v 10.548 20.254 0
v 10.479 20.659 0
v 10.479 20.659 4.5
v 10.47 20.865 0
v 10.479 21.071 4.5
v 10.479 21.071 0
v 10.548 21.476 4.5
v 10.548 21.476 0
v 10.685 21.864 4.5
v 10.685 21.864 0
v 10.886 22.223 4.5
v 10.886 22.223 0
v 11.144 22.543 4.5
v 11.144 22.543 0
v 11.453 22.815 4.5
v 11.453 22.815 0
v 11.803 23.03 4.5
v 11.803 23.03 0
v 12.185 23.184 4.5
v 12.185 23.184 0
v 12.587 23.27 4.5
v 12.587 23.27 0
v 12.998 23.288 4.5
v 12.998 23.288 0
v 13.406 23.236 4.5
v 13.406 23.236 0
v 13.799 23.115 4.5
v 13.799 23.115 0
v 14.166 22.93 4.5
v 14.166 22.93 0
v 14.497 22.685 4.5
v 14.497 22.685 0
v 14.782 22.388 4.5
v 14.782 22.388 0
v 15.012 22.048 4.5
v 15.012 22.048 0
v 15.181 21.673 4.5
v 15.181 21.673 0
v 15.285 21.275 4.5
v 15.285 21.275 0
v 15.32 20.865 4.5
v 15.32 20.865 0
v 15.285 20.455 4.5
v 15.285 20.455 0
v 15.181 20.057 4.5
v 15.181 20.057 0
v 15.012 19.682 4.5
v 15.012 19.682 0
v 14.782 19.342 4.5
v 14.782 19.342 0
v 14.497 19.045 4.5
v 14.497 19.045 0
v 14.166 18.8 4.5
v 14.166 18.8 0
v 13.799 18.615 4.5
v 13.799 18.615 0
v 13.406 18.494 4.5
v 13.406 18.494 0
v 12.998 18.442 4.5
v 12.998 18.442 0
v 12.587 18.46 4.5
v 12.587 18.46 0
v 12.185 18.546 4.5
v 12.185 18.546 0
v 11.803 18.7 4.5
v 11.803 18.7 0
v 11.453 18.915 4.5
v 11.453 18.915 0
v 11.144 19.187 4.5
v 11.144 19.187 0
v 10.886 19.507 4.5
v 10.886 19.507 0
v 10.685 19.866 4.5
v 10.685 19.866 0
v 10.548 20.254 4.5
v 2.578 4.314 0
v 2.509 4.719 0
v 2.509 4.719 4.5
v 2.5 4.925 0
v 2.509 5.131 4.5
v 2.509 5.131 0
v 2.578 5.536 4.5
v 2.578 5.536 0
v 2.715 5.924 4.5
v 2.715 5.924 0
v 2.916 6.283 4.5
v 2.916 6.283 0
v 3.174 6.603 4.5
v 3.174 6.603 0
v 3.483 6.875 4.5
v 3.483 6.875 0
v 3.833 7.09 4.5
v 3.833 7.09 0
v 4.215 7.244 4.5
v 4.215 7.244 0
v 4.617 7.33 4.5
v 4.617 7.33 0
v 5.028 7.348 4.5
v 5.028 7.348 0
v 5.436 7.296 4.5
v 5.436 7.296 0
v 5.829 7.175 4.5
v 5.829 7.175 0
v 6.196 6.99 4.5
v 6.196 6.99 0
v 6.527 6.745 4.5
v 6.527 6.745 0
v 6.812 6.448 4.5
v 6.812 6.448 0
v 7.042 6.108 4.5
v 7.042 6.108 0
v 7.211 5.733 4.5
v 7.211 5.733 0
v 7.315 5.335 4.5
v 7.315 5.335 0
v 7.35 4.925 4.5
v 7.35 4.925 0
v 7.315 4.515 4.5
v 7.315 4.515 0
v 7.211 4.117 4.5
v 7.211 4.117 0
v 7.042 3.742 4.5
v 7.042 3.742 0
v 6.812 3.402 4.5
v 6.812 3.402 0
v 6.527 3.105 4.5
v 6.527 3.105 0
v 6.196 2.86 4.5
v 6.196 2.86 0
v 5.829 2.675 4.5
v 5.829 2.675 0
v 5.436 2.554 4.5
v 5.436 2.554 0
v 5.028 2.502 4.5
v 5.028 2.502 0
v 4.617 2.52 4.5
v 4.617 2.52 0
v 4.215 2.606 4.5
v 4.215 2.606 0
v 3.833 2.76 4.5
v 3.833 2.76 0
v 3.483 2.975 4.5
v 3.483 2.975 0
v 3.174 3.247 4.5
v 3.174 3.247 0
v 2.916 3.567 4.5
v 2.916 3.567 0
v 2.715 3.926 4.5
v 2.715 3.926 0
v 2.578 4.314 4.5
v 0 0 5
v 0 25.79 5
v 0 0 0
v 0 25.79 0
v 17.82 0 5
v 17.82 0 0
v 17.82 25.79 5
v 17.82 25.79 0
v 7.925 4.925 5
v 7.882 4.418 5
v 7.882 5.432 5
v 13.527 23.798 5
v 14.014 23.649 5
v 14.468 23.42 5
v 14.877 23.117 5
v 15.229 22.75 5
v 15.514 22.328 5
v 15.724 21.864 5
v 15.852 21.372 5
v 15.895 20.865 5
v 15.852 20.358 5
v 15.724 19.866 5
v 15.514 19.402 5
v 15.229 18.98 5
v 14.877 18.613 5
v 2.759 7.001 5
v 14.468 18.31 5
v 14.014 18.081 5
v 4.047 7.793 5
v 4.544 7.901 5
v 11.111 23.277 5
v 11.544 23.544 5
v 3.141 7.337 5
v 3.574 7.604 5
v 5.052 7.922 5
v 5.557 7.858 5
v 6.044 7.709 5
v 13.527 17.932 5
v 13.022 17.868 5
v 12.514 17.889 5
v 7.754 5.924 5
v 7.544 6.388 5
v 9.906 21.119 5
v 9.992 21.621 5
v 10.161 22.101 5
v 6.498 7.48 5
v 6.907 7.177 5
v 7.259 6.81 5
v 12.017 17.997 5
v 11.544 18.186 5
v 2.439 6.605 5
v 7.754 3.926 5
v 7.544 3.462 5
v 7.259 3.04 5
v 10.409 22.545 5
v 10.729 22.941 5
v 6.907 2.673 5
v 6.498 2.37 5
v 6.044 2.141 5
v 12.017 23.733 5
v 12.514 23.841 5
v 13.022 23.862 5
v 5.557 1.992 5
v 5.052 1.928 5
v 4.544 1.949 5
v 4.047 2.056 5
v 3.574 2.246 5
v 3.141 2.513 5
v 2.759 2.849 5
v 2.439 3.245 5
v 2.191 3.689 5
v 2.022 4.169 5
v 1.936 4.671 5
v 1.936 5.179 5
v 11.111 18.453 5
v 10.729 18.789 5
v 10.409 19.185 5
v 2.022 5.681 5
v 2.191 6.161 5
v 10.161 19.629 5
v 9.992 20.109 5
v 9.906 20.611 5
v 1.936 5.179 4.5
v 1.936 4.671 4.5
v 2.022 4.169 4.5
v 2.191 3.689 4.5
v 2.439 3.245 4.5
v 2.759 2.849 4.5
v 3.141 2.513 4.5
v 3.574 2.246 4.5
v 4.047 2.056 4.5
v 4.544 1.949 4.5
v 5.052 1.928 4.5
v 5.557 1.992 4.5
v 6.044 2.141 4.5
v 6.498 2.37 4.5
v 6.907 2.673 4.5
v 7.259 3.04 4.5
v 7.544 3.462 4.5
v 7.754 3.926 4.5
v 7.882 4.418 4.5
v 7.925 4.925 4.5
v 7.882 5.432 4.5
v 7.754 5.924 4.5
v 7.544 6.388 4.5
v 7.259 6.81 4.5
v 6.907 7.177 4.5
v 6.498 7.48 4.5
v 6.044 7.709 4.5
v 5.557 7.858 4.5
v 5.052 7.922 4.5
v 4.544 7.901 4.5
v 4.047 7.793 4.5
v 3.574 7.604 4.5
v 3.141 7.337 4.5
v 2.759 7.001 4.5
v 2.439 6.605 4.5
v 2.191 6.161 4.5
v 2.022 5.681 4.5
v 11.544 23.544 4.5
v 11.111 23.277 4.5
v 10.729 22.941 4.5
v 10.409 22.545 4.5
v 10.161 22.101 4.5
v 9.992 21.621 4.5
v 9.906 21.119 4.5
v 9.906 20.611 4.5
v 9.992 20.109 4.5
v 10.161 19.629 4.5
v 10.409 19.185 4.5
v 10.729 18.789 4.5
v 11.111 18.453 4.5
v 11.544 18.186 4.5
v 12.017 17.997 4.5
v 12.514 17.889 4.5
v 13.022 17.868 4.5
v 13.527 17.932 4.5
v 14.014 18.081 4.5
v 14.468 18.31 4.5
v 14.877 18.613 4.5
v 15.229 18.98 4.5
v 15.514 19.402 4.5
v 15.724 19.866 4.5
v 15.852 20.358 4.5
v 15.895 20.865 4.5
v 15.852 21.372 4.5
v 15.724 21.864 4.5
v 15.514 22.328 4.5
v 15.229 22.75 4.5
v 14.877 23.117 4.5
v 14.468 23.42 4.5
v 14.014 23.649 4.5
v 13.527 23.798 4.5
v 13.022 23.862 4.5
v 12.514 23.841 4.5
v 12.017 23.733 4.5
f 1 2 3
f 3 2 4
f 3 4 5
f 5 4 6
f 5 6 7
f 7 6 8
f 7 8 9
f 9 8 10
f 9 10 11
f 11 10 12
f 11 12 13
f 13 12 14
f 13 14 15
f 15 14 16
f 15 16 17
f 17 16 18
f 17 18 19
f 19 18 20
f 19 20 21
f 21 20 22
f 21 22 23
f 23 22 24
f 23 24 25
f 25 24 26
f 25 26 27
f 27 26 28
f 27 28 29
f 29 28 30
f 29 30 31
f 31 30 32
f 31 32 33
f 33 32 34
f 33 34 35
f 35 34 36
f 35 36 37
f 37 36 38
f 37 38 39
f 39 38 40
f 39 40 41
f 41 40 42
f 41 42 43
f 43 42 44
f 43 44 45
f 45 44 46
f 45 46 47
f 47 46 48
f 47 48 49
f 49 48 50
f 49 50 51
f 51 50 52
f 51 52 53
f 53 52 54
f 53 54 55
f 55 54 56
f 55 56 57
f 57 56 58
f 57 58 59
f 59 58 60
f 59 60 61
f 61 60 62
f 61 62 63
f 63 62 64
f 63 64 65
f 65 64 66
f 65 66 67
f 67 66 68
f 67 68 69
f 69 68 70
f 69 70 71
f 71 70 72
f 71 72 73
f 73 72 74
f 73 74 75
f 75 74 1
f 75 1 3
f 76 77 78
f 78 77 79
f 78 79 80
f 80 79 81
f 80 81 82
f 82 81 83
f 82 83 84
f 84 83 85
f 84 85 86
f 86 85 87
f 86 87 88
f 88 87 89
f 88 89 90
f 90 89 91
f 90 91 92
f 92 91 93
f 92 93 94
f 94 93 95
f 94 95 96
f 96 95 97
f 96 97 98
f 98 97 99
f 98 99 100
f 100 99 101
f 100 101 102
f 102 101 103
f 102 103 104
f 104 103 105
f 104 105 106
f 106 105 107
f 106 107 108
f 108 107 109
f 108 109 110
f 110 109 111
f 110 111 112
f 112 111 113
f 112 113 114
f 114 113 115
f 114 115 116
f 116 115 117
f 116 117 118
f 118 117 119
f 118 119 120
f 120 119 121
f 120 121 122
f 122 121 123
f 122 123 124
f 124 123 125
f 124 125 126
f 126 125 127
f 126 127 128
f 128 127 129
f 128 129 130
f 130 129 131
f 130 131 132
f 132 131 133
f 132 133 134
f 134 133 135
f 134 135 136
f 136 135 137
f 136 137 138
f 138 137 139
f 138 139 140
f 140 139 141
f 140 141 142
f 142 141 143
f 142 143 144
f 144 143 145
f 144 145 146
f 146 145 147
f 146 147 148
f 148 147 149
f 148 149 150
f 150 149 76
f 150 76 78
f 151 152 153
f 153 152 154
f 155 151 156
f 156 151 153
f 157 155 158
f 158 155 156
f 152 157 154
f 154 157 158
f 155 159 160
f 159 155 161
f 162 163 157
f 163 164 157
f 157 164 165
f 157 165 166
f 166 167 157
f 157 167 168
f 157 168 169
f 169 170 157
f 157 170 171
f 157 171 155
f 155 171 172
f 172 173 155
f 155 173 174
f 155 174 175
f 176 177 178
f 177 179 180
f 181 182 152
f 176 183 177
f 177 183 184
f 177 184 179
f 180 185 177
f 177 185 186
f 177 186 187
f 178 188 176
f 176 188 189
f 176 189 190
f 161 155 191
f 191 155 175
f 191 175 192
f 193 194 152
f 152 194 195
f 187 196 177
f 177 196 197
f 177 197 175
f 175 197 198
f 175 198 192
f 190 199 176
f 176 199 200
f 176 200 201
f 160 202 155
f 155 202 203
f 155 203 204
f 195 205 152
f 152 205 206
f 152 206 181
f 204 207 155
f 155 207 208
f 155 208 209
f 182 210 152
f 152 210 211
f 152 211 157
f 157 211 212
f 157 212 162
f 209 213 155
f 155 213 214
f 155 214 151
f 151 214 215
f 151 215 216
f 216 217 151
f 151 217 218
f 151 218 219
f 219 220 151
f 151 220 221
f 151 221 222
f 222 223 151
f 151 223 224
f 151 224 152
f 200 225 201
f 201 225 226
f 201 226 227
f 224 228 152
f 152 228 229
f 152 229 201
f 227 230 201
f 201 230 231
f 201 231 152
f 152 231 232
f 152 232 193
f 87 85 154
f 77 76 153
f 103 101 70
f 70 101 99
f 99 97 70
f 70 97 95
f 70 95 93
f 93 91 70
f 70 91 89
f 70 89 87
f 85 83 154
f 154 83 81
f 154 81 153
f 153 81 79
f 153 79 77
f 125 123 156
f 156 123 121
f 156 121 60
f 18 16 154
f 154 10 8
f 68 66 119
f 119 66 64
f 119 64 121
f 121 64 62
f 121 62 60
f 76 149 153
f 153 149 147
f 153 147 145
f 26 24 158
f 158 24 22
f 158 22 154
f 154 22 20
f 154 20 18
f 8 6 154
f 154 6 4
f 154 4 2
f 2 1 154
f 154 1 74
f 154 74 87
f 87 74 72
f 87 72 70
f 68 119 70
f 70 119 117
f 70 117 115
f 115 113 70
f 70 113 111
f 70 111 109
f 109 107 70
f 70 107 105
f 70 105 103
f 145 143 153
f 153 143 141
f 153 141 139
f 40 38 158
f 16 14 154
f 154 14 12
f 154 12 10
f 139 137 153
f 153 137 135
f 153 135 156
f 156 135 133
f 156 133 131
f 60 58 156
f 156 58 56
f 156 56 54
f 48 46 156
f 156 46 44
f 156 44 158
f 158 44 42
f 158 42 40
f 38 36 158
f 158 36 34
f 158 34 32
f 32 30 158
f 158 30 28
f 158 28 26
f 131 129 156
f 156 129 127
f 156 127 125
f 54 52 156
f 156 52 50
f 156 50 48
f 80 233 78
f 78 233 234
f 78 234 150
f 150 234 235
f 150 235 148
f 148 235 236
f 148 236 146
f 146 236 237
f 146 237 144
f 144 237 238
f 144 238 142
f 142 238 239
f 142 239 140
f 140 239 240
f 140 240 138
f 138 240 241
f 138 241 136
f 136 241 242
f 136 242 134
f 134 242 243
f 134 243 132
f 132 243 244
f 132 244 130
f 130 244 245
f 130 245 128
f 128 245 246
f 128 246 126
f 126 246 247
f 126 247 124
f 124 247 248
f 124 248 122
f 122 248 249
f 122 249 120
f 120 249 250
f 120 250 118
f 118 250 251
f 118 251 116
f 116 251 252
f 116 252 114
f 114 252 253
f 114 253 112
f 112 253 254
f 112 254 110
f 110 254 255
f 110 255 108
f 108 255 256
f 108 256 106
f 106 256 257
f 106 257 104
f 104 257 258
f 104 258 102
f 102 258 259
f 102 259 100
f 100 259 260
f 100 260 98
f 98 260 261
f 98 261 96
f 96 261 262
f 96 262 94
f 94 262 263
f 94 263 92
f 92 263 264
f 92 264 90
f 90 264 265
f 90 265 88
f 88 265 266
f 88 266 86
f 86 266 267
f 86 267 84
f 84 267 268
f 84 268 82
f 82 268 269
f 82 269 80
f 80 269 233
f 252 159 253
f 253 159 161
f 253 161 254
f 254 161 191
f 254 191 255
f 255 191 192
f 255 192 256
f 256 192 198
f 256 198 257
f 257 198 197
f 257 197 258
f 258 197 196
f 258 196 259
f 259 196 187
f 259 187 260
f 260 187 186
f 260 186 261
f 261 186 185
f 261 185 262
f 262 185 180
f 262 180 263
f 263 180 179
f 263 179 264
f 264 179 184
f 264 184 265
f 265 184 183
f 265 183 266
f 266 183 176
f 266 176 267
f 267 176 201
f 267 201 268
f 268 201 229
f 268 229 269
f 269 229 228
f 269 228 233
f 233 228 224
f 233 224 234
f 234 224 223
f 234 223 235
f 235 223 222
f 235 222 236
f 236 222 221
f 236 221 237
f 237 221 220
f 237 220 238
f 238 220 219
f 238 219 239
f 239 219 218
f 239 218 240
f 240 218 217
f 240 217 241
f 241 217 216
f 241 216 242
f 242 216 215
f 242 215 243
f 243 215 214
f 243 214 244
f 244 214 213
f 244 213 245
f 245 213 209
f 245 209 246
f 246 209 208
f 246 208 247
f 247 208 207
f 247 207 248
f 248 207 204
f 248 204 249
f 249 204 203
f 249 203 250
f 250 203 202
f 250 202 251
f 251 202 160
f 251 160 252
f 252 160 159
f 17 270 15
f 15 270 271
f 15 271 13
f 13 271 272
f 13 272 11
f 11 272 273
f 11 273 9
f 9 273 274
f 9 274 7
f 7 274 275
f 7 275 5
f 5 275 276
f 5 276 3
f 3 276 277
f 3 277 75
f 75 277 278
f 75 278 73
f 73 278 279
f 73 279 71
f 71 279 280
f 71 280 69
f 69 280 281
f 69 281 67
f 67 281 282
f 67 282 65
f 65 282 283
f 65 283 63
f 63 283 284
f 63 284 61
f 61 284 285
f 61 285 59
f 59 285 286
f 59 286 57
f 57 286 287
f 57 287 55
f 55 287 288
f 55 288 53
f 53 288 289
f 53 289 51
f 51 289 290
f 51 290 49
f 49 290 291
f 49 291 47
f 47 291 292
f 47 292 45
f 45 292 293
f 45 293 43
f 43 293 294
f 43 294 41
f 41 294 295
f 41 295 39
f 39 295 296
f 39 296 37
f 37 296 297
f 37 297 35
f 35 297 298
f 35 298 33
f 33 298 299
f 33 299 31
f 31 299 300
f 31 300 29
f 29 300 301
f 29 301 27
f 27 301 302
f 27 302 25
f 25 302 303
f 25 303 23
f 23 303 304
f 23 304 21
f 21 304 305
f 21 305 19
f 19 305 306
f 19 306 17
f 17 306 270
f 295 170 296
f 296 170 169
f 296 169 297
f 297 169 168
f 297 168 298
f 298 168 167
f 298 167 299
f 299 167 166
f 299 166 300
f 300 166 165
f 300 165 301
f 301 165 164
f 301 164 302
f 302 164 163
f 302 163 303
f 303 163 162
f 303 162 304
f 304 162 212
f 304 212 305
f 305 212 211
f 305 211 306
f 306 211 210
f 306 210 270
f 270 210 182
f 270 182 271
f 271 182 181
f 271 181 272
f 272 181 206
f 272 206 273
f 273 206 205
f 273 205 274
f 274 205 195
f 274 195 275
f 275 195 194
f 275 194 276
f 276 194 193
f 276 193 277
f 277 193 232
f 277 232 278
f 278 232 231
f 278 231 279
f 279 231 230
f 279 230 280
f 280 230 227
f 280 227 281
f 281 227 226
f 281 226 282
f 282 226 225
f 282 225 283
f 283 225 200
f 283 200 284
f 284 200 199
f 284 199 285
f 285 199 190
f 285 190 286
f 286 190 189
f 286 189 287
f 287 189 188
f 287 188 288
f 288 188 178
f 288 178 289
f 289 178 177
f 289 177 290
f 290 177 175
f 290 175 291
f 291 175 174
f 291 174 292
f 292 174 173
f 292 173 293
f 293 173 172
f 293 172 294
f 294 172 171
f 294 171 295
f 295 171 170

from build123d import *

# Parameters (mm, degrees)
SKETCH1_W           = 17.82
SKETCH1_H           = 25.79
BOSS_EXTRUDE2_DEPTH = 5
SKETCH2_R           = 2.425
CUT_EXTRUDE1_DEPTH  = 15
SKETCH3_R           = 3
CUT_EXTRUDE2_DEPTH  = 0.5


with BuildPart() as part:
    # Sketch1 → Boss-Extrude2 (new body)
    with BuildSketch(Plane.XY):
        with Locations((8.91, 12.895)):
            Rectangle(SKETCH1_W, SKETCH1_H)
    extrude(amount=BOSS_EXTRUDE2_DEPTH)

    # Sketch2 → Cut-Extrude1 (cut)
    with BuildSketch(Plane.XY.offset(5)):
        with Locations((4.925, 4.925)):
            Circle(SKETCH2_R)
        with Locations((12.895, 20.865)):
            Circle(SKETCH2_R)
    extrude(amount=-CUT_EXTRUDE1_DEPTH, mode=Mode.SUBTRACT)

    # Sketch3 → Cut-Extrude2 (cut)
    with BuildSketch(Plane.XY.offset(5)):
        with Locations((4.925, 4.925)):
            Circle(SKETCH3_R)
        with Locations((12.895, 20.865)):
            Circle(SKETCH3_R)
    extrude(amount=-CUT_EXTRUDE2_DEPTH, mode=Mode.SUBTRACT)


solid = part.part
